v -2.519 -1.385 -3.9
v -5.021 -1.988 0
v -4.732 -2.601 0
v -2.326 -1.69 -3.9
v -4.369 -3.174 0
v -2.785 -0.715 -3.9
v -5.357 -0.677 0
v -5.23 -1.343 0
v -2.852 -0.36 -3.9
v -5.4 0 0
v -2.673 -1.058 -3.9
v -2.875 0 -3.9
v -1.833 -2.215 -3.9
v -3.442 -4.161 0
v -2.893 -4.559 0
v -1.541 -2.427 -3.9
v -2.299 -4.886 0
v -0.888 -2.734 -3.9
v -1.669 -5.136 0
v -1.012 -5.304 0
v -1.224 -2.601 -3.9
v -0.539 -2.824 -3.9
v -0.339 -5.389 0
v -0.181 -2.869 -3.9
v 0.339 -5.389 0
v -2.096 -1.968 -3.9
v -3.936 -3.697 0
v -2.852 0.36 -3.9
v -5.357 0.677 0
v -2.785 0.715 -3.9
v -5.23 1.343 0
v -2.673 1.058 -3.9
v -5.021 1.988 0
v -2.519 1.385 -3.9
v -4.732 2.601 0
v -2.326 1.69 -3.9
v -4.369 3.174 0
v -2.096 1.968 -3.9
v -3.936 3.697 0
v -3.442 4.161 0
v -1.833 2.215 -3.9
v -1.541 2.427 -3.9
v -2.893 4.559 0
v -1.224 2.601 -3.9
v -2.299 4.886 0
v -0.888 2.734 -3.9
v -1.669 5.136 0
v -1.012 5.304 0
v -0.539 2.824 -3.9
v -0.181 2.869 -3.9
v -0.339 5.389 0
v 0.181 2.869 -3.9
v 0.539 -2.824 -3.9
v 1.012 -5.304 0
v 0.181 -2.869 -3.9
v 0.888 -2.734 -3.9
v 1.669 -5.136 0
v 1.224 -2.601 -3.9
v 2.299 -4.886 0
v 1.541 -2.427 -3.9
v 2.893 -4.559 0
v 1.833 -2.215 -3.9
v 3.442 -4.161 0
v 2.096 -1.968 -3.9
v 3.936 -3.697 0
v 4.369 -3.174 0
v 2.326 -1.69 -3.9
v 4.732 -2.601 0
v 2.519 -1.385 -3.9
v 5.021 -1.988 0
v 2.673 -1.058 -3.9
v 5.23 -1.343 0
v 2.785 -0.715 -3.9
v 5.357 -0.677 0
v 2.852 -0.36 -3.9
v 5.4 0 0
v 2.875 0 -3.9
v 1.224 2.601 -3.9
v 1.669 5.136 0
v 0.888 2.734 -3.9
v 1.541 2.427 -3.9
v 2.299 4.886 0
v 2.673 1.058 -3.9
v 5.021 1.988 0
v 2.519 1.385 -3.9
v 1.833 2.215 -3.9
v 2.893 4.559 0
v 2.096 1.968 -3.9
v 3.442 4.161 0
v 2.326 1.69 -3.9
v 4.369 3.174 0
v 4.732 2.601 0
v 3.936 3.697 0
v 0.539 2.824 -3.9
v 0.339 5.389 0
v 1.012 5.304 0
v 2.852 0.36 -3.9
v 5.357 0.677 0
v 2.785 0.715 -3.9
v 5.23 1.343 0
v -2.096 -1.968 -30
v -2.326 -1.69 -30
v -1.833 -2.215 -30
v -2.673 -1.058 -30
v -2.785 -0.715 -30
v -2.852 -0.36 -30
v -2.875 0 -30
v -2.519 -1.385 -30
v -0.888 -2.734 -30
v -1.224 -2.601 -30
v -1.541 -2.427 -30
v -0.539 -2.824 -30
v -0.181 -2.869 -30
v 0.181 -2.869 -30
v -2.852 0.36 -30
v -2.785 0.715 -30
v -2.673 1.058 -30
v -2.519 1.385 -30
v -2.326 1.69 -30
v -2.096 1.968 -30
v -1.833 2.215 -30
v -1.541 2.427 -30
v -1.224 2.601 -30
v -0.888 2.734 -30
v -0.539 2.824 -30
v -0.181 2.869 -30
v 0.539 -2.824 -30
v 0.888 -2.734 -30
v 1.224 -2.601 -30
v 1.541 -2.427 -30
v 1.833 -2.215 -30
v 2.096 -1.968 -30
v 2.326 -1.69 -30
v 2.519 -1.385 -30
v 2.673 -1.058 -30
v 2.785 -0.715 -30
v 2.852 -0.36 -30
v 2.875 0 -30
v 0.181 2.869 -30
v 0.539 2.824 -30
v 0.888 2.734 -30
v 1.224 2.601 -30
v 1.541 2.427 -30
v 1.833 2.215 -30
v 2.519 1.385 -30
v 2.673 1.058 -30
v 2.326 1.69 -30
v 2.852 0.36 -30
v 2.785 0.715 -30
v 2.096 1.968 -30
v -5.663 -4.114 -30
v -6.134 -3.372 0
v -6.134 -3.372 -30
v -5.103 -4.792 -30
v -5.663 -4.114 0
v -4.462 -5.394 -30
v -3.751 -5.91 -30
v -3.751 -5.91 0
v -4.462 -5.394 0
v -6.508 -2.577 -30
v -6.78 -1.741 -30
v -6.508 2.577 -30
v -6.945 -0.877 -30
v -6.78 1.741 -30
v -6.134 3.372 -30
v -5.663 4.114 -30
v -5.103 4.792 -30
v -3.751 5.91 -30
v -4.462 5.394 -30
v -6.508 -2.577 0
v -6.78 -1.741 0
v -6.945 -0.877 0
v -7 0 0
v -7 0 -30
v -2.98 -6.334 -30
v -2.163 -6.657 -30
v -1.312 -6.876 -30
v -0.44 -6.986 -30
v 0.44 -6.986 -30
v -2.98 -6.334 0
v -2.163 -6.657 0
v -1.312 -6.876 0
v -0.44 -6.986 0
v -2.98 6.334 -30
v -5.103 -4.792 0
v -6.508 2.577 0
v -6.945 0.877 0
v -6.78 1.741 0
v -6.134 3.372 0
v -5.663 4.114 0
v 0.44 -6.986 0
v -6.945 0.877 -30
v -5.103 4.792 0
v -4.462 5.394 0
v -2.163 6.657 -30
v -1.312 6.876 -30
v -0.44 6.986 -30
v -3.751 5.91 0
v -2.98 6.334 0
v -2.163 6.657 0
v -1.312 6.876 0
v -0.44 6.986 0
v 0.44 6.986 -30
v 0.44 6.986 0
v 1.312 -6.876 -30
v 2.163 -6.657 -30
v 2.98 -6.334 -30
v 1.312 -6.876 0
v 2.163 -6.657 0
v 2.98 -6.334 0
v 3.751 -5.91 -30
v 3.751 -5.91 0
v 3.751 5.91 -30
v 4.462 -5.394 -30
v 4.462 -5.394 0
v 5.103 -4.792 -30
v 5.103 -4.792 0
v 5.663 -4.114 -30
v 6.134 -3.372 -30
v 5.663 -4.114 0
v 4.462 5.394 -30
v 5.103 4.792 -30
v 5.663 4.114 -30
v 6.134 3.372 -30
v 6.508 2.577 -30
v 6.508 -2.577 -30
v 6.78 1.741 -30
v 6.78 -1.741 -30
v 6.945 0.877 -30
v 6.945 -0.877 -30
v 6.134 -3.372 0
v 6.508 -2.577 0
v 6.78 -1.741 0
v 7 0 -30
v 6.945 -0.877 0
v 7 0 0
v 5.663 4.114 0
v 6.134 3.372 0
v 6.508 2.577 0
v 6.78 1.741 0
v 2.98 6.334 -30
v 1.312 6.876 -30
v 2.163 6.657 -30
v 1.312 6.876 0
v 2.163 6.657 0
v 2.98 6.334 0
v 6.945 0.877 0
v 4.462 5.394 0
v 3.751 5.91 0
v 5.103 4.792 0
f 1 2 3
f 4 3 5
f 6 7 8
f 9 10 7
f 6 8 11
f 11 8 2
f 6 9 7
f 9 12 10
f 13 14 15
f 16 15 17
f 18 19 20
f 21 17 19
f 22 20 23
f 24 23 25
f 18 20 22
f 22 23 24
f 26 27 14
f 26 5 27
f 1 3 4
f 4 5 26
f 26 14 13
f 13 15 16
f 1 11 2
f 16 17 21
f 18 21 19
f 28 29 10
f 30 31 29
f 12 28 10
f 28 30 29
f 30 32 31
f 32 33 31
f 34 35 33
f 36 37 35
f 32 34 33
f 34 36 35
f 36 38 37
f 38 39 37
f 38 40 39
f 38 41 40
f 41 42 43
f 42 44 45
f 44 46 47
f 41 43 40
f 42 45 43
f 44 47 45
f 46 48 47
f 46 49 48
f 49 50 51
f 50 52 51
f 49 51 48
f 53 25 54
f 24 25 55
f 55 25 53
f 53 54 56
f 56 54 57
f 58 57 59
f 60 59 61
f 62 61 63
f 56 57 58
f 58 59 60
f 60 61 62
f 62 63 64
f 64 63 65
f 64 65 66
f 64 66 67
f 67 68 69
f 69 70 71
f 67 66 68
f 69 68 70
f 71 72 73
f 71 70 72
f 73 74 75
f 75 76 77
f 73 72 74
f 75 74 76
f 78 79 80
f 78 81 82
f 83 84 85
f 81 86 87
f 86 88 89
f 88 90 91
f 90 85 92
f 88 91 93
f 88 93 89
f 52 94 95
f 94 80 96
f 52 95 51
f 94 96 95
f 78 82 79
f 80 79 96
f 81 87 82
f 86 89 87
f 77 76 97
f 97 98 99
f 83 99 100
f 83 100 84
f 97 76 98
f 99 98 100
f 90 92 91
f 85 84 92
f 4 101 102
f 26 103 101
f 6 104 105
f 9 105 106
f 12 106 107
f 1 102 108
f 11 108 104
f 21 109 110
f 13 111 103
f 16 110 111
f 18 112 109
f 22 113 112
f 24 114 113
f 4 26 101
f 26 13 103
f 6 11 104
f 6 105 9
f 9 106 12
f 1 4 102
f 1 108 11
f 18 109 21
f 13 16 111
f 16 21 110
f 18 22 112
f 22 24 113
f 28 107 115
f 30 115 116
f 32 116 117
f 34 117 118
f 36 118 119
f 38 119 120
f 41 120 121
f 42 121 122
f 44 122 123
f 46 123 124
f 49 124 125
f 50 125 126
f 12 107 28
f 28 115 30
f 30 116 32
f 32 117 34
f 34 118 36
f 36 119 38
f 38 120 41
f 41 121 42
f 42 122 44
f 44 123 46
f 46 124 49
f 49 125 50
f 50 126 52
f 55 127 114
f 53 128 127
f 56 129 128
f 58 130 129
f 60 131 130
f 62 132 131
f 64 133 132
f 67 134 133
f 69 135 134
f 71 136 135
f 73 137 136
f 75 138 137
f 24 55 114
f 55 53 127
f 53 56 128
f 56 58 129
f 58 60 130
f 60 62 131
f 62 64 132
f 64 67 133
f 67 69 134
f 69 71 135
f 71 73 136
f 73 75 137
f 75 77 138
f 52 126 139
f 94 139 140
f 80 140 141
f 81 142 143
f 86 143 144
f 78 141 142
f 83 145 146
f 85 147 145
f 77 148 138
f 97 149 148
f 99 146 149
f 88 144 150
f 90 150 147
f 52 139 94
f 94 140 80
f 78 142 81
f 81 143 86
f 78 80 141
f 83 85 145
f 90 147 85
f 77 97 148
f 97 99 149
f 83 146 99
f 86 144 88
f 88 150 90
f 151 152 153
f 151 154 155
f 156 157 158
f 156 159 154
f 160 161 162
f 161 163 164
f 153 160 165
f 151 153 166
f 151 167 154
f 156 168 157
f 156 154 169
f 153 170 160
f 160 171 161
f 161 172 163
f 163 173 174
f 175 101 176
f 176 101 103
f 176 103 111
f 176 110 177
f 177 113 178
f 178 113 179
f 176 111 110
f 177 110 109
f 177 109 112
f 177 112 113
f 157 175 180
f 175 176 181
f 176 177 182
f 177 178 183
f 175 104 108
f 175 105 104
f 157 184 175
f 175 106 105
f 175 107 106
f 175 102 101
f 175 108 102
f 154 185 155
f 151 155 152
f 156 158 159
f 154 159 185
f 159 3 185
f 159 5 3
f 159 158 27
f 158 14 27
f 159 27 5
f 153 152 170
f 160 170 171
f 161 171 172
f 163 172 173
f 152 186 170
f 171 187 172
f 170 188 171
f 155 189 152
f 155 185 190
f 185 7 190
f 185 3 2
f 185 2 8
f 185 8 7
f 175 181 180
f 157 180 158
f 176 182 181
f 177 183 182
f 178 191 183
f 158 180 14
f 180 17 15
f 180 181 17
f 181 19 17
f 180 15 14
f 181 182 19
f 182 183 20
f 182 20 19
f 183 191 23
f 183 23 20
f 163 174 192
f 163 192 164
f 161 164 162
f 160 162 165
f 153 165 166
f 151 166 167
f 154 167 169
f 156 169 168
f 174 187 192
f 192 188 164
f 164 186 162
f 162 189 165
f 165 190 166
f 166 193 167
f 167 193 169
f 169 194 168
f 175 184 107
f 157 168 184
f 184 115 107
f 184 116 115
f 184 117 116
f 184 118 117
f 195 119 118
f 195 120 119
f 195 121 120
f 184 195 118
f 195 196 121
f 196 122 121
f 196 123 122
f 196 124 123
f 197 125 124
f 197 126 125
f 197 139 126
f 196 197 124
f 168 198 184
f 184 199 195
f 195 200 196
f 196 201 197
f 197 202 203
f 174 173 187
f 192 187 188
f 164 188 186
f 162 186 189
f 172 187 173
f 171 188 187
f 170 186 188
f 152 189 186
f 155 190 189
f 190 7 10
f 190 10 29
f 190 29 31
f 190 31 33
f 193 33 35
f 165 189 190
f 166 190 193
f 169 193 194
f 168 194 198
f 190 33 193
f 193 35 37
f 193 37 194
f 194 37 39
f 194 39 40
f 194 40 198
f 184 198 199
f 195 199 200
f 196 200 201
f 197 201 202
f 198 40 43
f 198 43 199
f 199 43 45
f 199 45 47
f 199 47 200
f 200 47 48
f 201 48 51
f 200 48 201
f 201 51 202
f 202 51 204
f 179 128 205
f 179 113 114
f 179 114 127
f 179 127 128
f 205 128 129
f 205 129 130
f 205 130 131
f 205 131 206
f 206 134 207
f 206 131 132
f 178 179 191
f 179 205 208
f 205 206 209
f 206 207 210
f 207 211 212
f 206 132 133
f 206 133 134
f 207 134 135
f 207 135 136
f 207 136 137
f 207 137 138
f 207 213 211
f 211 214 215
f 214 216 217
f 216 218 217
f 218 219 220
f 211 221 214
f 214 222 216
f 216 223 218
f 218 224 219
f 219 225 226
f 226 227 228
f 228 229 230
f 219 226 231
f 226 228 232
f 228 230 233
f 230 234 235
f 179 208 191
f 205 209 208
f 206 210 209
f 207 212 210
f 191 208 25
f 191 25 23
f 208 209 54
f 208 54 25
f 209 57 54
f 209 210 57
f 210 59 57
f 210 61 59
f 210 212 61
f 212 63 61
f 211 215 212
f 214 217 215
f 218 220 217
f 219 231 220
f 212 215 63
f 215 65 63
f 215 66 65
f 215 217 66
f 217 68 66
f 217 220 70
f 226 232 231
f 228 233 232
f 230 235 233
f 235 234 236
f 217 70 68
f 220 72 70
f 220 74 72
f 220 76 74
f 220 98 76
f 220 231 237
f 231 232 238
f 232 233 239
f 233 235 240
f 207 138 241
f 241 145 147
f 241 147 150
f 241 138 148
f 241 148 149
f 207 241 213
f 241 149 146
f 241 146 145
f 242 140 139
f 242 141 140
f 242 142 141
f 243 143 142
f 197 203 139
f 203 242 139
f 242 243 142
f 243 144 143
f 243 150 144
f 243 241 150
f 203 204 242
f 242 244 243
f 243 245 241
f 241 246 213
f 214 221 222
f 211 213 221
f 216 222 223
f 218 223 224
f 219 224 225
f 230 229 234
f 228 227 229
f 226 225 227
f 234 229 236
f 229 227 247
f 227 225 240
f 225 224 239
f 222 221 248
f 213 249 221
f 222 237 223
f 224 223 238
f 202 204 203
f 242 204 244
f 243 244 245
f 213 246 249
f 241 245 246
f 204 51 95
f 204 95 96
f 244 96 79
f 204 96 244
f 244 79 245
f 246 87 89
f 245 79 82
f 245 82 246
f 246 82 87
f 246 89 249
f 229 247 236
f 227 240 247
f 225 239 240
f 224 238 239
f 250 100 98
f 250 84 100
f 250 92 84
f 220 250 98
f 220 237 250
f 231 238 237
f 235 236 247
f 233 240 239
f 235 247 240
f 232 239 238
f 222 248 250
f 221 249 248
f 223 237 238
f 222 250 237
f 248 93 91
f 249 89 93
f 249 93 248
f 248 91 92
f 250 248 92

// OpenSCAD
$fn = 50;

difference() {
	union() {
		translate(v = [0, 0, -30.0]) {
			cylinder(h = 30, r = 7.0);
		}
	}
	union() {
		translate(v = [0, 0, 0]) {
			rotate(a = [0, 0, 0]) {
				difference() {
					union() {
						translate(v = [0, 0, -33.0]) {
							cylinder(h = 33, r = 2.6);
						}
						translate(v = [0, 0, -3.9]) {
							cylinder(h = 3.9, r1 = 2.875, r2 = 5.4);
						}
						translate(v = [0, 0, -33.0]) {
							cylinder(h = 33, r = 2.875);
						}
						translate(v = [0, 0, -33.0]) {
							cylinder(h = 33, r = 2.6);
						}
					}
					union();
				}
			}
		}
	}
}
